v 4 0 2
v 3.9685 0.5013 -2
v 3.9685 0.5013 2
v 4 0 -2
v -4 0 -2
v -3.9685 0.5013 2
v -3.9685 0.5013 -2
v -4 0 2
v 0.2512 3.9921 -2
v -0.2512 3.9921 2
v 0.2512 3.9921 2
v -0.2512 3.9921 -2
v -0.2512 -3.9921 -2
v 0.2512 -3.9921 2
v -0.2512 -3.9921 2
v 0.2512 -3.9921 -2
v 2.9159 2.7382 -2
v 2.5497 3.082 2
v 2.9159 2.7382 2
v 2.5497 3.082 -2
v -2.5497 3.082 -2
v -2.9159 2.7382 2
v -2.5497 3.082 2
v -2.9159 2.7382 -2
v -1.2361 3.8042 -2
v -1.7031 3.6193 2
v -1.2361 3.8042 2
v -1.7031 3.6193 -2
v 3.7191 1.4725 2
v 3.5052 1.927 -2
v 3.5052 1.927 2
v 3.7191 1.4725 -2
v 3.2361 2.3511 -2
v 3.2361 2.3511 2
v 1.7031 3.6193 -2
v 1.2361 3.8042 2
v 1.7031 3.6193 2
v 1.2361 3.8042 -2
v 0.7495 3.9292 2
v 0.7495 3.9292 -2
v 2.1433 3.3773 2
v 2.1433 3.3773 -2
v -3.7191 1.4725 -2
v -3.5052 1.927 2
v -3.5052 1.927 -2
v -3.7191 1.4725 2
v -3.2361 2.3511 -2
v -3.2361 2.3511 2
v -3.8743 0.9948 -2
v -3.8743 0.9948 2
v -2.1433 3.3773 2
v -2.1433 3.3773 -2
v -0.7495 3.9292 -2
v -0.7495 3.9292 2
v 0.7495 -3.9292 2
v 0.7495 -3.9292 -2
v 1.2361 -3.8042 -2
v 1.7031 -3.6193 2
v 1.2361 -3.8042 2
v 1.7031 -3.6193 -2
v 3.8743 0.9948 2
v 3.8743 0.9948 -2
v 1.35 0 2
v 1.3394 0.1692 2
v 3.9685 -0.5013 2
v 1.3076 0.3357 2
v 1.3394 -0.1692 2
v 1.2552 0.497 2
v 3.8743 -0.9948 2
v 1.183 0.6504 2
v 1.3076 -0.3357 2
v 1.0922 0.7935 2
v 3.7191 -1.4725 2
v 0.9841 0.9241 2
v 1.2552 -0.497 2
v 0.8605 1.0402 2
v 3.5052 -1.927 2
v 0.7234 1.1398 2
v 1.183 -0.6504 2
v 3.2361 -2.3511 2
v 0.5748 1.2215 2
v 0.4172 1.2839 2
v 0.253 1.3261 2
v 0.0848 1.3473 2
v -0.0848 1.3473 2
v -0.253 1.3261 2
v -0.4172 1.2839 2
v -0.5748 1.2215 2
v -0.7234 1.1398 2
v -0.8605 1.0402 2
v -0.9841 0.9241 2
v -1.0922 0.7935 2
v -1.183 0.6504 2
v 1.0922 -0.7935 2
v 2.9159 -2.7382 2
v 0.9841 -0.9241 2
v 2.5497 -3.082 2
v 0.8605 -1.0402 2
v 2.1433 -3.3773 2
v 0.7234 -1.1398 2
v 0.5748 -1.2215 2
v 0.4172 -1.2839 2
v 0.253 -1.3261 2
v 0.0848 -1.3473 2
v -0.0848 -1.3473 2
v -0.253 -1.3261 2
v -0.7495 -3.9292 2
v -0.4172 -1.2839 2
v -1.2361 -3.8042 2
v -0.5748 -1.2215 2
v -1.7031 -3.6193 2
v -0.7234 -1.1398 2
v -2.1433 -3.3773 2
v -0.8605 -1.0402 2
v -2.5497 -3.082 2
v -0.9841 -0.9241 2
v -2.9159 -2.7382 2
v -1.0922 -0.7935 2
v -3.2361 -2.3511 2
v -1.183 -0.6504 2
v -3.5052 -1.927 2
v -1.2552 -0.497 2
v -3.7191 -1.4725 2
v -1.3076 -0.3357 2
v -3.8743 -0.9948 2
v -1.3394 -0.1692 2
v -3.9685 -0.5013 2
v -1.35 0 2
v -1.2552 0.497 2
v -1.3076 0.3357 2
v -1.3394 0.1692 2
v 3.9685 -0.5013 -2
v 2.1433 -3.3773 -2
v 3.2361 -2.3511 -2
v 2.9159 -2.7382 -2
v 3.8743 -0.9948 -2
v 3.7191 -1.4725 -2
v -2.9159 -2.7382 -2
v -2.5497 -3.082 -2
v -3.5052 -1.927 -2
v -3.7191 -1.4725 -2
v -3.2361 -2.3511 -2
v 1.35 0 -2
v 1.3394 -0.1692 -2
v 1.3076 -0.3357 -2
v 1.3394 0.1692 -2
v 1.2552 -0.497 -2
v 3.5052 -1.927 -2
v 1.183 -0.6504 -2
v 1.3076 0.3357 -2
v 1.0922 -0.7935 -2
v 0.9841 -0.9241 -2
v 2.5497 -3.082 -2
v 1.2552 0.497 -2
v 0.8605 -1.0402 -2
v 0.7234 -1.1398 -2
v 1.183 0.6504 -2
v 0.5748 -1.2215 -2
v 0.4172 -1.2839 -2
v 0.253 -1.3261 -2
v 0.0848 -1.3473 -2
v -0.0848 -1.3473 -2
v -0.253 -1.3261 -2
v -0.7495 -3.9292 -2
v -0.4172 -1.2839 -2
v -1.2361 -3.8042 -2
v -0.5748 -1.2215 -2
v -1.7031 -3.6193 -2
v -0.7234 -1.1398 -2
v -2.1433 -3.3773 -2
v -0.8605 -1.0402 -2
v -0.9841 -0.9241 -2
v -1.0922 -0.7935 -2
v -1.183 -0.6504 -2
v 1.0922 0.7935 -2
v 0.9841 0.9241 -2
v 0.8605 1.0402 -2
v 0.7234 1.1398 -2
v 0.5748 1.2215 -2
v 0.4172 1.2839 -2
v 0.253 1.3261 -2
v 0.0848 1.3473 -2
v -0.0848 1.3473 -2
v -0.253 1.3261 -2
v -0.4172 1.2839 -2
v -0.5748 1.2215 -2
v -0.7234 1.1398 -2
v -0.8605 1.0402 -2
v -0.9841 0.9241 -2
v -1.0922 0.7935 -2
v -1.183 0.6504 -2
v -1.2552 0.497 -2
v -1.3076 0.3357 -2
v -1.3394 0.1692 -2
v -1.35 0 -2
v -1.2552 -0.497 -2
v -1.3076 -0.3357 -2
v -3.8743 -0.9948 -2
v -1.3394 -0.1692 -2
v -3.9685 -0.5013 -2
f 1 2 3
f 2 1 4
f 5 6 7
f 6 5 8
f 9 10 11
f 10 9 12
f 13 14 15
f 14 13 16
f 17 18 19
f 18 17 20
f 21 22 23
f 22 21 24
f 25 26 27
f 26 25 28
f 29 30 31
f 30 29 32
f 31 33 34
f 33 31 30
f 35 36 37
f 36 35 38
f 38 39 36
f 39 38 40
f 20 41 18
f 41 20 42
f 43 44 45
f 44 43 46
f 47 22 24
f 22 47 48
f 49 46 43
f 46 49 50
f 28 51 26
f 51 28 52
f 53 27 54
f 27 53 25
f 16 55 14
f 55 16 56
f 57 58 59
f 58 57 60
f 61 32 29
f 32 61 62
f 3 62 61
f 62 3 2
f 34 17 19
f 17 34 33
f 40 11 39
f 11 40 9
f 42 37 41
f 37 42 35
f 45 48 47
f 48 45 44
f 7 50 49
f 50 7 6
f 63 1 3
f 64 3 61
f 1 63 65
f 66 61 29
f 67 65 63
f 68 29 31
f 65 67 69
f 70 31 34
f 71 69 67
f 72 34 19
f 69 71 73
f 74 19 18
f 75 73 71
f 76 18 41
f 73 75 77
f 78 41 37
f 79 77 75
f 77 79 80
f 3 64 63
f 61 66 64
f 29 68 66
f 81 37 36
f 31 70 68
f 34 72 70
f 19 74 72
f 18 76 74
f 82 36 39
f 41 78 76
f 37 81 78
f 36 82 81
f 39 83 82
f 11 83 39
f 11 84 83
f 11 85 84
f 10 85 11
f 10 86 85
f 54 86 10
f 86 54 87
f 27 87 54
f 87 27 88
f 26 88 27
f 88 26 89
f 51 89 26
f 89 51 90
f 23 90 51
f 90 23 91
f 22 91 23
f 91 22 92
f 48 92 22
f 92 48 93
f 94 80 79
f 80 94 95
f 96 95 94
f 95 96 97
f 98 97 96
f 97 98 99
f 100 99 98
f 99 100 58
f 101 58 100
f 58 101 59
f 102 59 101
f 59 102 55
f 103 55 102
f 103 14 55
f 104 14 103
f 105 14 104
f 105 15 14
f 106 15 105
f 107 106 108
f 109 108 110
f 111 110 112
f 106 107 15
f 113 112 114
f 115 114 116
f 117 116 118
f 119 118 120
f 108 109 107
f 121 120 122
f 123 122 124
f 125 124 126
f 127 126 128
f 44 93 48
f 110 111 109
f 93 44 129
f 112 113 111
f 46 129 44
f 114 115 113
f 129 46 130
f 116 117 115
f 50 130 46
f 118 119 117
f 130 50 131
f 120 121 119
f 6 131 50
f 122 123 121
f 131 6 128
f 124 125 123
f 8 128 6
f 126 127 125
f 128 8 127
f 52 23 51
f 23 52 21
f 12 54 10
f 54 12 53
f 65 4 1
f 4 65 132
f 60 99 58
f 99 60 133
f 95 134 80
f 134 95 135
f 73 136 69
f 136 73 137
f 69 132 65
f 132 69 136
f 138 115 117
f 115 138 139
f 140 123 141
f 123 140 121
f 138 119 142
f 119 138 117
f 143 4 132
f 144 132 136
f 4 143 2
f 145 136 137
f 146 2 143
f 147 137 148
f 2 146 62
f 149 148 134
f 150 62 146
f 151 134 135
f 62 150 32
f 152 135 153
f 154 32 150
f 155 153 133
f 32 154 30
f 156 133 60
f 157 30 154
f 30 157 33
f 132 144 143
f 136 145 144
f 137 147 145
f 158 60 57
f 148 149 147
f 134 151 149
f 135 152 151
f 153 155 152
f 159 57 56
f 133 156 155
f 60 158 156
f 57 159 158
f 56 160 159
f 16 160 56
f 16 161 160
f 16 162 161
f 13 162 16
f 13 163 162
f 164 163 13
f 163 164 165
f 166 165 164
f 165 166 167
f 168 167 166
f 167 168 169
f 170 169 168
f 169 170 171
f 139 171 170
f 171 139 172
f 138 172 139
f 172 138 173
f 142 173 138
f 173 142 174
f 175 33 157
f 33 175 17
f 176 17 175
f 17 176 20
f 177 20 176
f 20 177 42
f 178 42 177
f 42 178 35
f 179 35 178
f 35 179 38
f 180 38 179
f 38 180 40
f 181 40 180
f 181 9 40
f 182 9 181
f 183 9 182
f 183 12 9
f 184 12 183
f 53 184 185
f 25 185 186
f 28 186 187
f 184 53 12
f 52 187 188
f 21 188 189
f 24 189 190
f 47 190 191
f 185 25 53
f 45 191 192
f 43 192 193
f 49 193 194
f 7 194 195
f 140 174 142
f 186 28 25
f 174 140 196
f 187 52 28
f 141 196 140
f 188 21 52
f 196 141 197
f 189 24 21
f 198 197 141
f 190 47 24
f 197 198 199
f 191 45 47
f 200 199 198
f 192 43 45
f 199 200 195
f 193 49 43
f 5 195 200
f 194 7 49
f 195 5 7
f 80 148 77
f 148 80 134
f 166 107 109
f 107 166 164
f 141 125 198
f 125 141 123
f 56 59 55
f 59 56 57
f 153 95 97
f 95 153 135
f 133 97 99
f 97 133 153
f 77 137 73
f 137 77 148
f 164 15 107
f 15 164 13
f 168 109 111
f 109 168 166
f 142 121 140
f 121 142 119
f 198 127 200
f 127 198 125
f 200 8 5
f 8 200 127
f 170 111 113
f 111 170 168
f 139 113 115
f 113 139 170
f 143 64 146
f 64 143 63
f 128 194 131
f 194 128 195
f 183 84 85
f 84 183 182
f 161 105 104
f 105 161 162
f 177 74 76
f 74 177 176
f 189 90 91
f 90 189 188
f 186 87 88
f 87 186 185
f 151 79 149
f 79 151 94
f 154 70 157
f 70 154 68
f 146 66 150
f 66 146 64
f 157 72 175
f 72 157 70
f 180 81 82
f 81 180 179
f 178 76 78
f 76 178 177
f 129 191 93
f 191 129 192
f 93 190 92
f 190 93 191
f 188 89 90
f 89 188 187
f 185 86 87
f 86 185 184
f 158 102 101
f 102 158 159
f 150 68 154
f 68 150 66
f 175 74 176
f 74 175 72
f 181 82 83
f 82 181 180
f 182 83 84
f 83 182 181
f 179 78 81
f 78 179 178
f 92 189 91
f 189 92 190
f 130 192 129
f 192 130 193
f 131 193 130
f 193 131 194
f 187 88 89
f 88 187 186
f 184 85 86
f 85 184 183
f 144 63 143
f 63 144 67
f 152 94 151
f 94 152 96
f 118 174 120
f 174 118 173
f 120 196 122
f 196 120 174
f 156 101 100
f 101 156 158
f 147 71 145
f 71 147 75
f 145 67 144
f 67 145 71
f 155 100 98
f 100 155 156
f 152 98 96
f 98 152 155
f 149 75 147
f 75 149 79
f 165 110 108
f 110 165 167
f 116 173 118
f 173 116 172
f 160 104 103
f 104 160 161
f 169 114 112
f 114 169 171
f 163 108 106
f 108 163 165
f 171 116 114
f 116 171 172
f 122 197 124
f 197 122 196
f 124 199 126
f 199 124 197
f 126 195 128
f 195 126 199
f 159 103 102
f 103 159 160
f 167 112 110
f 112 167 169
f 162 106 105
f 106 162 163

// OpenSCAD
$fn = 50;


difference() {
	union() {
		translate(v = [0, 0, -2.0000000000]) {
			cylinder(h = 4, r = 4.0000000000);
		}
	}
	union() {
		translate(v = [0, 0, -100.0000000000]) {
			cylinder(h = 200, r = 1.3500000000);
		}
	}
}
